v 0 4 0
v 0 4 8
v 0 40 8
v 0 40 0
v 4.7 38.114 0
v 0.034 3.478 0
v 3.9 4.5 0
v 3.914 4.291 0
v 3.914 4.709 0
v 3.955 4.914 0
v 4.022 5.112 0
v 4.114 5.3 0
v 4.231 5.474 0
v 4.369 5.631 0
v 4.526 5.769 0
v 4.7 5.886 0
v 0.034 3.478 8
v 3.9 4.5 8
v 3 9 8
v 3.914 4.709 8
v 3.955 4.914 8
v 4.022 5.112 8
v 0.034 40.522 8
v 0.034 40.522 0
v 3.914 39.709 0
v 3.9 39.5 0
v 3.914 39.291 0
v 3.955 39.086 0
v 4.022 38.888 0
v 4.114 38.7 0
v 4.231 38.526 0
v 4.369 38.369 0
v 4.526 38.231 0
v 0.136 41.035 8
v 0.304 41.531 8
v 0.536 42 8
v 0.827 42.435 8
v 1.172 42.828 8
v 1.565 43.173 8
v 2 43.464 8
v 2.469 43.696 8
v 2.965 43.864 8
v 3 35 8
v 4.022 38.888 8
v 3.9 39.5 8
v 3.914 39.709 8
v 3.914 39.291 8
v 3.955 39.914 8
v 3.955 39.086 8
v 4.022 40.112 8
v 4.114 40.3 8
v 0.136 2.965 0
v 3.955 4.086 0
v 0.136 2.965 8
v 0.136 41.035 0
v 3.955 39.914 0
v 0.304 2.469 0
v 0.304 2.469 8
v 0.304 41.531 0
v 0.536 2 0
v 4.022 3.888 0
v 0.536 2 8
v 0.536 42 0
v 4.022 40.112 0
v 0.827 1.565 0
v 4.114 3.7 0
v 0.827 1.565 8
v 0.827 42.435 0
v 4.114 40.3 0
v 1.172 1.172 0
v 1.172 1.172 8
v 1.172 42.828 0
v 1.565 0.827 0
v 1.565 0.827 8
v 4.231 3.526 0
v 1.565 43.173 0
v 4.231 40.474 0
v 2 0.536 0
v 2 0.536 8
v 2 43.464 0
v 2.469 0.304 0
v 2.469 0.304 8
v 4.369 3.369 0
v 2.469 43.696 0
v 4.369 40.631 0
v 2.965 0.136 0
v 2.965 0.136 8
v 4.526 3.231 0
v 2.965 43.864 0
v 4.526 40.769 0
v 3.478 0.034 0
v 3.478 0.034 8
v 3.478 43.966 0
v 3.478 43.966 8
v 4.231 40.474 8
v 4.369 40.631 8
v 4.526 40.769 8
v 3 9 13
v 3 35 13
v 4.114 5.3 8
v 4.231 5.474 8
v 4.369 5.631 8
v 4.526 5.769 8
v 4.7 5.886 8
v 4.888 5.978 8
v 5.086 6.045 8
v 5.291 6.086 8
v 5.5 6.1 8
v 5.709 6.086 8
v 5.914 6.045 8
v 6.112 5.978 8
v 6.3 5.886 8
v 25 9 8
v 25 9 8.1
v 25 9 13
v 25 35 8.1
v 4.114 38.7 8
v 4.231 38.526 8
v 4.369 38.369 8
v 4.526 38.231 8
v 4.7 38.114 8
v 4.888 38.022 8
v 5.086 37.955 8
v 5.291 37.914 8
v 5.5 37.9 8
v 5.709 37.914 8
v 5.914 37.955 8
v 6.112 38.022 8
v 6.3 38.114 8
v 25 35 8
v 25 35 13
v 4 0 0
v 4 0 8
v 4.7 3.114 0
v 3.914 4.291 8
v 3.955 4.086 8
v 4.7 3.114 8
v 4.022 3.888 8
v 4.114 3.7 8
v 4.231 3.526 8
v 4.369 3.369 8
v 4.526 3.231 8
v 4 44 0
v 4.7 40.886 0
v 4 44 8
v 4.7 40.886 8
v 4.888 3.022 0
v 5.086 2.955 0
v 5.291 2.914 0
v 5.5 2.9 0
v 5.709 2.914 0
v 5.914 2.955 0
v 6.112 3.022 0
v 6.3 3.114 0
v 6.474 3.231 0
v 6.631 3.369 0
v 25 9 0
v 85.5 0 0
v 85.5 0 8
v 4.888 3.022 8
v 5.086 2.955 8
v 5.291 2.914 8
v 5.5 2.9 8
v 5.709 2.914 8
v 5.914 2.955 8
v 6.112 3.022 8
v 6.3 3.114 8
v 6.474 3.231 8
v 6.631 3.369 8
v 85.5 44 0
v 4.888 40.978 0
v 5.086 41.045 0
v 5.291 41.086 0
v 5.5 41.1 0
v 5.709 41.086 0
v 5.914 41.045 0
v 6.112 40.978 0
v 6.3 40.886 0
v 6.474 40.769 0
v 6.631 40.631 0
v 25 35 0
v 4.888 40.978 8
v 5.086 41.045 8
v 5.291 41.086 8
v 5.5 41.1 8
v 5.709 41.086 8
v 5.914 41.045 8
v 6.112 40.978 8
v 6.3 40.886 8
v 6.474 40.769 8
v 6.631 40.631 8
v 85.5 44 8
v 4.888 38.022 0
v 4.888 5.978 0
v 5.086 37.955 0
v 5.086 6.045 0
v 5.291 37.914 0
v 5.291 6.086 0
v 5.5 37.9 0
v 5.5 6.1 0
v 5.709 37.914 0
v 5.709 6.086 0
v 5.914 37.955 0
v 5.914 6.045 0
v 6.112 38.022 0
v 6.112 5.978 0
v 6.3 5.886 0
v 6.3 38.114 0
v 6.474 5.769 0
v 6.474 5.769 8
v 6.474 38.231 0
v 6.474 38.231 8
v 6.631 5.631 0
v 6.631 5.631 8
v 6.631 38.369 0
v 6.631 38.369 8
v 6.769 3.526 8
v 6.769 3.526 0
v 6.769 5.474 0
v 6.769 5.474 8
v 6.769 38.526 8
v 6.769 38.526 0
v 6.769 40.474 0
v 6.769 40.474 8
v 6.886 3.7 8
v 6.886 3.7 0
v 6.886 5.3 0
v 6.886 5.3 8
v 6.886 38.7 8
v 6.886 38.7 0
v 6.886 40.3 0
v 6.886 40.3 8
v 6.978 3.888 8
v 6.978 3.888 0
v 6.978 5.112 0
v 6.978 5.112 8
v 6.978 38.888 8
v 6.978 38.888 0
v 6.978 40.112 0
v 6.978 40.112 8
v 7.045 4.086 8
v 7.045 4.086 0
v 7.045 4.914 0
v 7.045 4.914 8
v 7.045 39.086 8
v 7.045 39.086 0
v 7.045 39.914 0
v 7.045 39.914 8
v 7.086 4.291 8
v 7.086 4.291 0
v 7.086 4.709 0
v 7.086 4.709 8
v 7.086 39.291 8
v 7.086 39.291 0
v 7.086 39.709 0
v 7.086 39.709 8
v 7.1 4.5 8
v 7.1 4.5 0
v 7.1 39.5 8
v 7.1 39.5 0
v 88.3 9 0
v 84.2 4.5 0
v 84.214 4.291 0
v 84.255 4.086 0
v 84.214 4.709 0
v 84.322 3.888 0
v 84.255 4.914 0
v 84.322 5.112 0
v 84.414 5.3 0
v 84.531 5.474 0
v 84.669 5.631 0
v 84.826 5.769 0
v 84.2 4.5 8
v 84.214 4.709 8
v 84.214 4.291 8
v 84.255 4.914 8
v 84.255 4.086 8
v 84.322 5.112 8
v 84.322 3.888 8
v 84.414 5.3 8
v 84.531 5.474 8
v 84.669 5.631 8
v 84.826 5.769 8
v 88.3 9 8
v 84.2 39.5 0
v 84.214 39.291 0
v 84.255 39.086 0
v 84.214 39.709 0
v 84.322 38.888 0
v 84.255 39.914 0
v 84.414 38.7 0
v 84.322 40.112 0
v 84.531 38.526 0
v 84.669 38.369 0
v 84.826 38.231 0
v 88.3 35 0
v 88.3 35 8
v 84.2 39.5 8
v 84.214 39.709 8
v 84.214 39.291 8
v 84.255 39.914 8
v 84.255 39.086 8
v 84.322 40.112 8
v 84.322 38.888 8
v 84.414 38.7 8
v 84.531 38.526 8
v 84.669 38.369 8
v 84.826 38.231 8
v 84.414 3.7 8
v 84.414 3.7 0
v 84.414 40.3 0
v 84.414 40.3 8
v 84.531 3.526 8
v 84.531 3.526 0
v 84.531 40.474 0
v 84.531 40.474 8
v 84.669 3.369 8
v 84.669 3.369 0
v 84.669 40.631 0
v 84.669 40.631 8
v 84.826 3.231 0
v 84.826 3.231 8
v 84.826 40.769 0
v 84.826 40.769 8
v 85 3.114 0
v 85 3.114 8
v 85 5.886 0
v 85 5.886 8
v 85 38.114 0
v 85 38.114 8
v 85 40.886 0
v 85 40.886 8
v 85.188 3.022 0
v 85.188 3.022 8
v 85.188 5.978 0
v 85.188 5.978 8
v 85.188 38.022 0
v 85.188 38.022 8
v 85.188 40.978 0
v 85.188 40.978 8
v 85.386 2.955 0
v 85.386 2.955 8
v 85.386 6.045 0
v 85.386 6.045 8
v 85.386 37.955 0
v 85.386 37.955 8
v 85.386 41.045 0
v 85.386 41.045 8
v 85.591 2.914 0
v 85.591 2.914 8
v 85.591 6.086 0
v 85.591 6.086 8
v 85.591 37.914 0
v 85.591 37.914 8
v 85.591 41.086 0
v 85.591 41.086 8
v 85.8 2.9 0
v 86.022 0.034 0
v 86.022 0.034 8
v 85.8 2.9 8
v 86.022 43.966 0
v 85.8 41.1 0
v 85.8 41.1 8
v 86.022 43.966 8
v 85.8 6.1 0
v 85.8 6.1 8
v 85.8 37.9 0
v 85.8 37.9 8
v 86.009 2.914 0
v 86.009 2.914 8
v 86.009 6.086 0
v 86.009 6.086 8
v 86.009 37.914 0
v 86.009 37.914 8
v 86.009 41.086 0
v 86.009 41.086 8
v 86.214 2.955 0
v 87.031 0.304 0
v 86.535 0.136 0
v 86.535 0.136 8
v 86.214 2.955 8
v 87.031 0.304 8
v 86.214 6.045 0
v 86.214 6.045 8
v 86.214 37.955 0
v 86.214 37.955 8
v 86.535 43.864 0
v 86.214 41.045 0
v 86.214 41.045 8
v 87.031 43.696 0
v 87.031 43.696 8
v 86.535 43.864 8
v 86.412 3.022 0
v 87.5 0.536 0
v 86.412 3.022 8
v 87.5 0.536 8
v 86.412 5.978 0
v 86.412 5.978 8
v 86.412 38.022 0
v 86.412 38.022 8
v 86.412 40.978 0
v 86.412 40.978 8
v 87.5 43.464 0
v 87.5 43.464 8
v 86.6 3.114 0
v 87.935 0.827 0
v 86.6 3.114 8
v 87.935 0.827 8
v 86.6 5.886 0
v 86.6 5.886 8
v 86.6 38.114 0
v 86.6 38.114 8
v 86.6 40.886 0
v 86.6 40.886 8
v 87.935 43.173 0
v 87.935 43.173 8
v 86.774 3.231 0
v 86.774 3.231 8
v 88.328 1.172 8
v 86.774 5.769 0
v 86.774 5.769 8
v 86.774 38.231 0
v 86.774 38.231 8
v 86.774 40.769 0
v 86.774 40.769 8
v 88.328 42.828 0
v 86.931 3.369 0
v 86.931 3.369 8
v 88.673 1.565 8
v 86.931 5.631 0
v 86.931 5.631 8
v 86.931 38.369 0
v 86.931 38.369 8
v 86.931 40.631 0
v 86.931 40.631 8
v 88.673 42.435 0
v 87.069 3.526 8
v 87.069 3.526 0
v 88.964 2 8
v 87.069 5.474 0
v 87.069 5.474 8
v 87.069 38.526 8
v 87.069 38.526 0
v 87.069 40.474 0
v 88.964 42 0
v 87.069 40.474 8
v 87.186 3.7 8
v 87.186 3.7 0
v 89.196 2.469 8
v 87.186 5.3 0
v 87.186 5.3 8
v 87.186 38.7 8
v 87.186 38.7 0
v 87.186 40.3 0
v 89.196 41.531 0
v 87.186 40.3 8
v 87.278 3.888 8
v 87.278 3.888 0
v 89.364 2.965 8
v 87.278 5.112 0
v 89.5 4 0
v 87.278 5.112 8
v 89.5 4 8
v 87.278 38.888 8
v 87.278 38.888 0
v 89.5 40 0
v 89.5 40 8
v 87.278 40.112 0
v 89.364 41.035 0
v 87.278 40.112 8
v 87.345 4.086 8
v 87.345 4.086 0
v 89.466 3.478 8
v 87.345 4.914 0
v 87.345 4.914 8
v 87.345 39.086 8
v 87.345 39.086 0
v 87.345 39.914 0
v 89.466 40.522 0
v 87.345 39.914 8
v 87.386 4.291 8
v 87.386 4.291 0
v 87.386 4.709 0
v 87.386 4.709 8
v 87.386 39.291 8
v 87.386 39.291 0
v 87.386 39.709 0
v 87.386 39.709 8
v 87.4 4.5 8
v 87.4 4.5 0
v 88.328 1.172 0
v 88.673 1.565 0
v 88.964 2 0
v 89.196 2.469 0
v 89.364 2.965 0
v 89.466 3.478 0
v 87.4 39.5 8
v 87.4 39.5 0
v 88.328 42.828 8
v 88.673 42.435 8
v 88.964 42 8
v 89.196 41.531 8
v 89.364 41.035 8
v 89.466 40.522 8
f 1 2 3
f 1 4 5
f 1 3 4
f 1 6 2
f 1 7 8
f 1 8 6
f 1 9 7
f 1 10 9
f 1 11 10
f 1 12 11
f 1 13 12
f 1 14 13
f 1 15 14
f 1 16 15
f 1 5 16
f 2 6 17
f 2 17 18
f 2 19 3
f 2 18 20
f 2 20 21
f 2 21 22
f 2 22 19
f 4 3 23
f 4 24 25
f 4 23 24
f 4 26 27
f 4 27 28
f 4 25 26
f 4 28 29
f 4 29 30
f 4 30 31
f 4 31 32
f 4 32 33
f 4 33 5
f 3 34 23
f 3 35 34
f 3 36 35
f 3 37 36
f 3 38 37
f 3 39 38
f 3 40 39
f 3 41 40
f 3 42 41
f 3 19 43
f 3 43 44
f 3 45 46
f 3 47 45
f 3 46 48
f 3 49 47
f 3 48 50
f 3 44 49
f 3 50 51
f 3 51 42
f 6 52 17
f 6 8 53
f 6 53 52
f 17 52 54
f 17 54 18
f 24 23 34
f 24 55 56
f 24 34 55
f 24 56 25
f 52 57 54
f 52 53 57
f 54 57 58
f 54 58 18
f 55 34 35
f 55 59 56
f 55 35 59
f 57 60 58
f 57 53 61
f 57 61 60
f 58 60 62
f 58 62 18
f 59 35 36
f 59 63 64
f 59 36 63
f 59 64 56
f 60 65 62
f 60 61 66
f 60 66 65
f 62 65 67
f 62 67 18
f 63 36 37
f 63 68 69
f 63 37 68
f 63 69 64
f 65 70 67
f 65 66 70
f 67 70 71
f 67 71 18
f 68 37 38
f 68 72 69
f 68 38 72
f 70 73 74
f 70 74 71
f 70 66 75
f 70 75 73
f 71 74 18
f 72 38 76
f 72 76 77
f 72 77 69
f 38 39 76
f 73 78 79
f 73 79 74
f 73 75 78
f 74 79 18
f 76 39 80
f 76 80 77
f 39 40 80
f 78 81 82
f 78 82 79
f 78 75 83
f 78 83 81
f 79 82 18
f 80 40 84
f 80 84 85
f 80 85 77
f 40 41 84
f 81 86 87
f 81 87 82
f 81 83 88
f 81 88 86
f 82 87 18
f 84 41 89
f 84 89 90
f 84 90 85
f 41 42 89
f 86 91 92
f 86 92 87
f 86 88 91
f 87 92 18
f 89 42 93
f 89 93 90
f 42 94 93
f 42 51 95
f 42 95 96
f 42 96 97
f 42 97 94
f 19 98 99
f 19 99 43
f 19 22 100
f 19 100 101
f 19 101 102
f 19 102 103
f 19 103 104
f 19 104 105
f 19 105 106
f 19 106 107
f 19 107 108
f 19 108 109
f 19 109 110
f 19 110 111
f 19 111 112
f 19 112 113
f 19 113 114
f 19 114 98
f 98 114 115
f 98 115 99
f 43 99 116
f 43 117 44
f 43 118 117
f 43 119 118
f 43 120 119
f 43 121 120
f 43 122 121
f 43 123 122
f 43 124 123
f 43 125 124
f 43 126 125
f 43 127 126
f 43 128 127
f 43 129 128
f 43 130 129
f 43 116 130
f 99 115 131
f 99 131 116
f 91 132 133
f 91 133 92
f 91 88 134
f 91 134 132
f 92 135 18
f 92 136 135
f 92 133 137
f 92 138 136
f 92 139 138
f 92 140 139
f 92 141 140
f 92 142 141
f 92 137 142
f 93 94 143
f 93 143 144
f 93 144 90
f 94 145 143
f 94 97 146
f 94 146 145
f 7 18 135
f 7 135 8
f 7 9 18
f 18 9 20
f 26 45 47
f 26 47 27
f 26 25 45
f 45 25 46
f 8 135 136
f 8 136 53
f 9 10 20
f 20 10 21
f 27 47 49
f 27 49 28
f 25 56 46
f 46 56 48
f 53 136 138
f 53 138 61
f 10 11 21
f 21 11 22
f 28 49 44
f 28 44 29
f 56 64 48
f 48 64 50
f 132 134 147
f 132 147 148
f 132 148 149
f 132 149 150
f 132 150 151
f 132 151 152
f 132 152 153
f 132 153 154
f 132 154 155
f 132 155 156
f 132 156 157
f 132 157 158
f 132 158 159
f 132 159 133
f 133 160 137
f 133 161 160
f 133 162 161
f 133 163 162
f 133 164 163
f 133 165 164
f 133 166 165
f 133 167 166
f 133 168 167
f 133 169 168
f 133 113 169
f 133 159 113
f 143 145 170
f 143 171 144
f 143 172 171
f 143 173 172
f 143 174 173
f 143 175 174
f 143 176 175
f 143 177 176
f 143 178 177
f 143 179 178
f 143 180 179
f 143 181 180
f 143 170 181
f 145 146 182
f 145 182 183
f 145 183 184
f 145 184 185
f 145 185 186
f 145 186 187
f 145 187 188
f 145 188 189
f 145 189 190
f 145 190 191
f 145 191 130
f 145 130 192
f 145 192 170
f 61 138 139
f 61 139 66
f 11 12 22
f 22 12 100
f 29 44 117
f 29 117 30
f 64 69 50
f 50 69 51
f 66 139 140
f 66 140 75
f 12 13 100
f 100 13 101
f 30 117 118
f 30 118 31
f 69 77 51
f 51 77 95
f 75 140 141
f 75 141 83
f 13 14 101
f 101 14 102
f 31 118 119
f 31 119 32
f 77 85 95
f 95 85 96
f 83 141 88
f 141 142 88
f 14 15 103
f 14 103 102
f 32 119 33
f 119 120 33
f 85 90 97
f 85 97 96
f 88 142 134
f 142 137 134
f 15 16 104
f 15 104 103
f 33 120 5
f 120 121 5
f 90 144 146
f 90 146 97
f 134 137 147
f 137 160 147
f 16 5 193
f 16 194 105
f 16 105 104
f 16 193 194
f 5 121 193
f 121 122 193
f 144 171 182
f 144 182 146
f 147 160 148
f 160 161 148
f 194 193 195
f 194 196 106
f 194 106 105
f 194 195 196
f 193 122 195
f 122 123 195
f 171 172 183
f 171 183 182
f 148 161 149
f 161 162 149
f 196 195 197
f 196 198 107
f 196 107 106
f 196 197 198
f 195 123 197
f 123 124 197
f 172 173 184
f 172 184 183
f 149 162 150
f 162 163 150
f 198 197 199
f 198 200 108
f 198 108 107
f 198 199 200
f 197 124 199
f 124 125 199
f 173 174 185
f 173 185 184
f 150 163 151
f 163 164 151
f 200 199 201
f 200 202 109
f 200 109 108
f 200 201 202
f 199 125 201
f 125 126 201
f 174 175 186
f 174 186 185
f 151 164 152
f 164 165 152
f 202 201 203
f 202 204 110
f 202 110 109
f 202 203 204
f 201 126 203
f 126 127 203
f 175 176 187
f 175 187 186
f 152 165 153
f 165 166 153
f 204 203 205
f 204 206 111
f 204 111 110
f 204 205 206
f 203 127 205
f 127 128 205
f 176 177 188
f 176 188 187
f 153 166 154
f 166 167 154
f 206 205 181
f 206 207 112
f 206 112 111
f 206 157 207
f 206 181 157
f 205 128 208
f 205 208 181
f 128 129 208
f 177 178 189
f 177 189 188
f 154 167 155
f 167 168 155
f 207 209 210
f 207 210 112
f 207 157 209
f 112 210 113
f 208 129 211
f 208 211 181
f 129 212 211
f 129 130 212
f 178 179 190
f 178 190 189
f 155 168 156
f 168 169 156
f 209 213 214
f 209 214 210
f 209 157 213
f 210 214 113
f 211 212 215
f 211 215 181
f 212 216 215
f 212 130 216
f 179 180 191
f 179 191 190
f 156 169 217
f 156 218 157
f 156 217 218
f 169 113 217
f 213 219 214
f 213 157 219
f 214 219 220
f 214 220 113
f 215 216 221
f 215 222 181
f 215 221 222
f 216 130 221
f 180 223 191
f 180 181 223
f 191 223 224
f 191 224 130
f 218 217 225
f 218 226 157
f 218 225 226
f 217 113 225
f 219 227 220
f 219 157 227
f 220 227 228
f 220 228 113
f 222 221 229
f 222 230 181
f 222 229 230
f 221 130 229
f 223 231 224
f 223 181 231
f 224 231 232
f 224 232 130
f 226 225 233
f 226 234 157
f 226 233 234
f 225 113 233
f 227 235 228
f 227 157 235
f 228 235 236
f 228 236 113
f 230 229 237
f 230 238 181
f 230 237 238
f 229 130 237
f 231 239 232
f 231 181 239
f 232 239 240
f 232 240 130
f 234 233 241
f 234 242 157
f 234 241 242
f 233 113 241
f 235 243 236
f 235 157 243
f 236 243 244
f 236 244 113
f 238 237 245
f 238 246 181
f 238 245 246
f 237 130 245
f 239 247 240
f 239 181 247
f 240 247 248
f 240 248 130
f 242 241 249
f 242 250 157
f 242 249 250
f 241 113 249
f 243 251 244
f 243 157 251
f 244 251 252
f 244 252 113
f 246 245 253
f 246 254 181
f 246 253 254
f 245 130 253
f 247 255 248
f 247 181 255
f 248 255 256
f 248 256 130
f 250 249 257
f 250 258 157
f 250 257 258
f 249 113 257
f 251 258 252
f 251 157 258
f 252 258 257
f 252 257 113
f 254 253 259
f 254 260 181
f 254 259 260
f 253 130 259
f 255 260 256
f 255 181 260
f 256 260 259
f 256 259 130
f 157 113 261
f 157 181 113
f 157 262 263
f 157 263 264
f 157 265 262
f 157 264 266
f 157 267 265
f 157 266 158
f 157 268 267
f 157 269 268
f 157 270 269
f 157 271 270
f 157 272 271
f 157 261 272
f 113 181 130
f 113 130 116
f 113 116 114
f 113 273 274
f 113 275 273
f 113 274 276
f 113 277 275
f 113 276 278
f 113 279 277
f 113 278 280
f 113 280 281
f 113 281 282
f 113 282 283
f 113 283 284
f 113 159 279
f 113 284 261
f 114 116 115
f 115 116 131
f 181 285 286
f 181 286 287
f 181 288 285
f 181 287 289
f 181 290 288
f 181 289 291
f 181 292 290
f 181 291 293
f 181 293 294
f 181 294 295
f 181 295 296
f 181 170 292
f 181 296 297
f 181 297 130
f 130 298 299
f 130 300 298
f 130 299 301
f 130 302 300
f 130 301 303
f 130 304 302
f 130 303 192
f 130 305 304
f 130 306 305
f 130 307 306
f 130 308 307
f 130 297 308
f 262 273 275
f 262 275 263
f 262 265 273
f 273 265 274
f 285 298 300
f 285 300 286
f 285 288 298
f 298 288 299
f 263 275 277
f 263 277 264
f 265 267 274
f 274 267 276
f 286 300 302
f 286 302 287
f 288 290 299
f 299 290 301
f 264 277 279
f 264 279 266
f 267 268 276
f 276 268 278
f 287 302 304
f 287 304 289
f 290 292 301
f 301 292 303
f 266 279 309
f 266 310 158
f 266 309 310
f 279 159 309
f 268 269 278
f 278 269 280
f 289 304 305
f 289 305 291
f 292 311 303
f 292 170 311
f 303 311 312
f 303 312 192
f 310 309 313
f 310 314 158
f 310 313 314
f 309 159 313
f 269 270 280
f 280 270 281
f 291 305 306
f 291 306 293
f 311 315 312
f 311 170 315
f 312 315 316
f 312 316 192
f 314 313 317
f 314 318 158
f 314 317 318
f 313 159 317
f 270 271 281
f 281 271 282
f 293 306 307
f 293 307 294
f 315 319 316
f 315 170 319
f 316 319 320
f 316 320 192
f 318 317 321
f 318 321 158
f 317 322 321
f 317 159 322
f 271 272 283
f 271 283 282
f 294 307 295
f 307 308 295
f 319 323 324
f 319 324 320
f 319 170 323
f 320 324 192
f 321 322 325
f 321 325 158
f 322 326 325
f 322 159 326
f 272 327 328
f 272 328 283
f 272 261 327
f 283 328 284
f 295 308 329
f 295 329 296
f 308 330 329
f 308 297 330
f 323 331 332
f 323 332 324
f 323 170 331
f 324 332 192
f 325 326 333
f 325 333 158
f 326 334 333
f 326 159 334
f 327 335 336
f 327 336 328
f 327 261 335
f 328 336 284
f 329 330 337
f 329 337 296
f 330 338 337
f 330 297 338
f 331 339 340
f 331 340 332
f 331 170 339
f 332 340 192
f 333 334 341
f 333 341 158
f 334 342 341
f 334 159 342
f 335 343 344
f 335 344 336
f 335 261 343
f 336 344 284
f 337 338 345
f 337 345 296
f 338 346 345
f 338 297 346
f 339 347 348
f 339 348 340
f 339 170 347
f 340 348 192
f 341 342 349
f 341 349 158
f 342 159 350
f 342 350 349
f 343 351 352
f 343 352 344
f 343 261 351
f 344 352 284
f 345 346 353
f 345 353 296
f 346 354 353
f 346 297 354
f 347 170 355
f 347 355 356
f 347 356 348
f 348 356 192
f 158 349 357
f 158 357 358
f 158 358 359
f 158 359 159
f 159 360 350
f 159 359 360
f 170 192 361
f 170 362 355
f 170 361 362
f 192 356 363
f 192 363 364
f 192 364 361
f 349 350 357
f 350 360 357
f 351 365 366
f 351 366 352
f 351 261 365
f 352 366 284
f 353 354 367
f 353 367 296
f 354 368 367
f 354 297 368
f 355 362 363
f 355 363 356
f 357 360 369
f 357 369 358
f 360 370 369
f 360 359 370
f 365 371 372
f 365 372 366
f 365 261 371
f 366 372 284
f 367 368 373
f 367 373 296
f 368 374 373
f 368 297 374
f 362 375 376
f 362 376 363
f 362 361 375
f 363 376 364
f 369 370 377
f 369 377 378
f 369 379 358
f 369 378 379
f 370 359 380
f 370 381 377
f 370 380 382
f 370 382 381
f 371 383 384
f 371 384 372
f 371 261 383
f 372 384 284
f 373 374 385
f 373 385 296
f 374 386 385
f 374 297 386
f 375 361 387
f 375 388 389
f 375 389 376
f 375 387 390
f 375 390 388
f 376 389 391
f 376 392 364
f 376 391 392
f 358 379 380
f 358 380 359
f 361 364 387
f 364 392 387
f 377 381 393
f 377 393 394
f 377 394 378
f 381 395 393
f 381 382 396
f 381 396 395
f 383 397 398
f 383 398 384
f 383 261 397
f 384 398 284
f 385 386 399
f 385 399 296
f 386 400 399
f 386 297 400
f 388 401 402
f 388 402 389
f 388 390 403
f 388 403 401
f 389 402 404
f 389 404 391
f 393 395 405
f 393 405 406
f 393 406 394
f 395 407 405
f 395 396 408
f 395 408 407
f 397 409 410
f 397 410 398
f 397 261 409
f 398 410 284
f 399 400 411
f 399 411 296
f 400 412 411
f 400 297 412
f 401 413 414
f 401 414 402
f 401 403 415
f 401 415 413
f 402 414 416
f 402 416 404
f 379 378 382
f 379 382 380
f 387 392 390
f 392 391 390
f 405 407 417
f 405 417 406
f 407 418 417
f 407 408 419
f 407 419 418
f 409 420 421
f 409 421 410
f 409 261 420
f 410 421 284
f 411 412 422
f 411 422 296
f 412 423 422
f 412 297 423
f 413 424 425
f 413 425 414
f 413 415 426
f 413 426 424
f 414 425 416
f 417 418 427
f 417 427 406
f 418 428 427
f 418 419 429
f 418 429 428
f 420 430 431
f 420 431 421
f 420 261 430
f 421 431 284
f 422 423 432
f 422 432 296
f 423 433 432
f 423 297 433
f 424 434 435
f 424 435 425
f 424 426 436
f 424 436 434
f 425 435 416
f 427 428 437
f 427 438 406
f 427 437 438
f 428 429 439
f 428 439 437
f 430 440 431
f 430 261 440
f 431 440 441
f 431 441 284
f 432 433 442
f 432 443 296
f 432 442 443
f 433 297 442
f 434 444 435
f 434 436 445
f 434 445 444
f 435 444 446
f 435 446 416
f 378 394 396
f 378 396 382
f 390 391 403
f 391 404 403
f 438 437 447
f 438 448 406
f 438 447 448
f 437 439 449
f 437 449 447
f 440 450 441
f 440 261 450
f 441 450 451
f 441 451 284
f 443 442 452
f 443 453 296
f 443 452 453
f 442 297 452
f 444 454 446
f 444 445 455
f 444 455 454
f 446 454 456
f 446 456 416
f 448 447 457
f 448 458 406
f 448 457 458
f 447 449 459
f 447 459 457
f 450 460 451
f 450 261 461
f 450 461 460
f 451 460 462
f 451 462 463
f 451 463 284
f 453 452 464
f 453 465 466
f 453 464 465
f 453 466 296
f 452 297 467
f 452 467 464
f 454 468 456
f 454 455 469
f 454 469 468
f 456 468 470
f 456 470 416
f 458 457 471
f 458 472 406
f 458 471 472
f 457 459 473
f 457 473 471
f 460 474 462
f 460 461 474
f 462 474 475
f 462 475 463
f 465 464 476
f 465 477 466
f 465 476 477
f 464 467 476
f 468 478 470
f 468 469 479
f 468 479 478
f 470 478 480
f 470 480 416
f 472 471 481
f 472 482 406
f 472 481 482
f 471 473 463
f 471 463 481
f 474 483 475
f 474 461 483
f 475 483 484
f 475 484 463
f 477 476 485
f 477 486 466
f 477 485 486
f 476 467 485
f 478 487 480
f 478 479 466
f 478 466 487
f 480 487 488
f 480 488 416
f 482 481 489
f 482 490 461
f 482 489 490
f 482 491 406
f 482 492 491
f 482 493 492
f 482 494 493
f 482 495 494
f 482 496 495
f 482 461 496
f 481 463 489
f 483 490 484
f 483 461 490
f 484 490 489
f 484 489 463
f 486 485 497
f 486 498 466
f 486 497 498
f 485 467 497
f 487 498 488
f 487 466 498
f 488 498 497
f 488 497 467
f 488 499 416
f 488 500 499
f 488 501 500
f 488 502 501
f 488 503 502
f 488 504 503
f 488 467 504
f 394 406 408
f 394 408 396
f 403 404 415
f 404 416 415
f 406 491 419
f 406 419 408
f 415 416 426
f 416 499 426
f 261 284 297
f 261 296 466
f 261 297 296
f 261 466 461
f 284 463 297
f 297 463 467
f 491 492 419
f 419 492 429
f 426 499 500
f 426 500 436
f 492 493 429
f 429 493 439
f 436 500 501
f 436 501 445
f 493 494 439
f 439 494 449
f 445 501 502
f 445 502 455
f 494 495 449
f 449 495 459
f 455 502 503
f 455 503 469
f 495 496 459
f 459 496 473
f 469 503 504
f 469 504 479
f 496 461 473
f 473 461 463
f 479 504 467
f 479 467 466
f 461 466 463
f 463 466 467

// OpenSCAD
// Dilder Rev 2 "extended with joystick" — MIDDLE PLATFORM v1
//
// Mid-stack platform that sits on top of base-v1, under the top cover.
// Outer footprint is a uniform 8 mm-tall shell — no stepped outer
// profile. An internal solid pedestal on the -X end rises above the
// shell top.
//
// Walls:
//   - ±Y long side walls: 9 mm
//   - -X end wall: 3 mm (battery end, matches base-v1)
//   - +X end wall: 1.2 mm (USB-C end, matches base-v1's thin wall)
//
// Internal fill (only feature that goes above the 8 mm outer top):
//   - Solid block on the -X interior: 22 mm along X (from the -X inner
//     wall face inward), full interior Y (between the ±Y walls), from
//     the floor up to 5 mm above the shell top (so top sits at z = 13).
//
// Corner pillars stay at the same XY positions as base-v1 so the M3
// through-bolts align through the whole stack. All pillars are 8 mm
// tall (the fill block sits in a different Y band than the pillars, so
// they don't interact).
//
// Export:
//   openscad -o middle-platform-v1.3mf middle-platform-v1.scad

$fn = 48;

// ============================================================
// Outer shell dimensions (flush with base-v1)
// ============================================================
enclosure_outer_width_along_x_axis_mm           = 89.5;
enclosure_outer_depth_along_y_axis_mm           = 44;
middle_platform_short_portion_height_z_mm       = 8;
outer_case_top_view_corner_radius_mm            = 4;

// ============================================================
// Left-side internal fill (solid pedestal poking above the 8 mm top)
// ============================================================
// Interior fill depth along X, measured from the -X inner wall face.
left_fill_interior_depth_along_x_mm             = 22;
// How far the fill sticks up PAST the 8 mm shell top.
left_fill_height_above_shell_top_mm             = 5;

// ============================================================
// Wall thicknesses (only relevant around the hollow right portion)
// ============================================================
perimeter_long_side_wall_thickness_y_mm         = 9;    // ±Y long walls
minus_x_end_wall_thickness_mm                   = 3.0;  // battery end
plus_x_end_wall_thickness_mm                    = 1.2;  // USB-C end (thin)

// Interior X at which the fill block ends (its -X face sits at the -X
// inner wall). Also marks where the hollow right-side interior begins.
left_fill_end_x_mm =
    minus_x_end_wall_thickness_mm + left_fill_interior_depth_along_x_mm;  // = 25

// Absolute Z of the fill top (5 mm above the 8 mm shell top).
left_fill_top_z_mm =
    middle_platform_short_portion_height_z_mm
      + left_fill_height_above_shell_top_mm;  // = 13

// ============================================================
// Corner pillars (same XY origins as base-v1 so screws line up)
// ============================================================
corner_pillar_square_side_length_mm             = 5;
corner_pillar_inner_facing_corner_radius_mm     = 1;
m3_screw_clearance_hole_diameter_mm             = 3.2;

// Pillar Y origin uses base-v1's 2 mm long-wall thickness (NOT this
// file's 9 mm), so the screw centers don't shift sideways vs. the base.
perimeter_outer_wall_thickness_mm_base          = 2;

corner_pillar_xy_origin_positions_list = [
    [minus_x_end_wall_thickness_mm,
     perimeter_outer_wall_thickness_mm_base],
    [enclosure_outer_width_along_x_axis_mm
       - plus_x_end_wall_thickness_mm
       - corner_pillar_square_side_length_mm,
     perimeter_outer_wall_thickness_mm_base],
    [minus_x_end_wall_thickness_mm,
     enclosure_outer_depth_along_y_axis_mm
       - perimeter_outer_wall_thickness_mm_base
       - corner_pillar_square_side_length_mm],
    [enclosure_outer_width_along_x_axis_mm
       - plus_x_end_wall_thickness_mm
       - corner_pillar_square_side_length_mm,
     enclosure_outer_depth_along_y_axis_mm
       - perimeter_outer_wall_thickness_mm_base
       - corner_pillar_square_side_length_mm],
];

// ========== Helpers (shared shape language with base-v1) ==========

module rounded_v_box(w, l, h, r, fn = 48) {
    hull() {
        for (x = [r, w - r])
            for (y = [r, l - r])
                translate([x, y, 0])
                    cylinder(r = r, h = h, $fn = fn);
    }
}

module pillar_one_round(w, l, h, r, round_x, round_y) {
    tiny = 0.01;
    hull() {
        for (ix = [0, 1])
            for (iy = [0, 1]) {
                cr = (ix == round_x && iy == round_y) ? r : tiny;
                translate([cr + ix * (w - 2*cr), cr + iy * (l - 2*cr), 0])
                    cylinder(r = cr, h = h, $fn = 48);
            }
    }
}

module chamber_carve_preserving_pillars(origin_x, origin_y, origin_z,
                                        width_x, depth_y, height_z,
                                        pillar_xy_list, pillar_side) {
    difference() {
        translate([origin_x, origin_y, origin_z])
            cube([width_x, depth_y, height_z]);
        for (pillar_origin_xy = pillar_xy_list)
            translate([pillar_origin_xy[0], pillar_origin_xy[1], origin_z - 0.5])
                cube([pillar_side, pillar_side, height_z + 1]);
    }
}

// ========== Middle platform ==========

module middle_platform() {
    right_interior_x_start_mm = left_fill_end_x_mm;
    right_interior_x_end_mm =
        enclosure_outer_width_along_x_axis_mm - plus_x_end_wall_thickness_mm;
    interior_y_start_mm = perimeter_long_side_wall_thickness_y_mm;
    interior_y_depth_mm =
        enclosure_outer_depth_along_y_axis_mm
          - 2 * perimeter_long_side_wall_thickness_y_mm;

    difference() {
        union() {
            // Outer shell — uniform 8 mm tall, flat top. The internal
            // fill block below is the only feature that pokes above this.
            rounded_v_box(
                enclosure_outer_width_along_x_axis_mm,
                enclosure_outer_depth_along_y_axis_mm,
                middle_platform_short_portion_height_z_mm,
                outer_case_top_view_corner_radius_mm);

            // Internal fill pedestal on the -X interior. -X face flush
            // with the -X inner wall; ±Y faces flush with the ±Y inner
            // wall faces; top sits 5 mm above the 8 mm shell top.
            translate([minus_x_end_wall_thickness_mm,
                       interior_y_start_mm,
                       0])
                cube([left_fill_interior_depth_along_x_mm,
                      interior_y_depth_mm,
                      left_fill_top_z_mm]);

            // Corner pillars — all uniform 8 mm (the fill block is in a
            // different Y band than any pillar, so pillars stay short).
            for (corner_pillar_origin_xy = corner_pillar_xy_origin_positions_list) {
                pillar_rounds_positive_x_corner =
                    (corner_pillar_origin_xy[0]
                      < enclosure_outer_width_along_x_axis_mm / 2) ? 1 : 0;
                pillar_rounds_positive_y_corner =
                    (corner_pillar_origin_xy[1]
                      < enclosure_outer_depth_along_y_axis_mm / 2) ? 1 : 0;
                translate([corner_pillar_origin_xy[0],
                           corner_pillar_origin_xy[1],
                           0])
                    pillar_one_round(
                        corner_pillar_square_side_length_mm,
                        corner_pillar_square_side_length_mm,
                        middle_platform_short_portion_height_z_mm,
                        corner_pillar_inner_facing_corner_radius_mm,
                        pillar_rounds_positive_x_corner,
                        pillar_rounds_positive_y_corner);
            }
        }

        // Interior carve — only on the right (hollow) portion. The fill
        // block's X range (x < 25) is left untouched.
        chamber_carve_preserving_pillars(
            right_interior_x_start_mm,
            interior_y_start_mm,
            -0.1,
            right_interior_x_end_mm - right_interior_x_start_mm,
            interior_y_depth_mm,
            middle_platform_short_portion_height_z_mm + 0.2,
            corner_pillar_xy_origin_positions_list,
            corner_pillar_square_side_length_mm);

        // Screw pass-through holes through every pillar (uniform 8 mm).
        for (corner_pillar_origin_xy = corner_pillar_xy_origin_positions_list) {
            screw_hole_center_x_mm =
                corner_pillar_origin_xy[0]
                  + corner_pillar_square_side_length_mm / 2;
            screw_hole_center_y_mm =
                corner_pillar_origin_xy[1]
                  + corner_pillar_square_side_length_mm / 2;
            translate([screw_hole_center_x_mm,
                       screw_hole_center_y_mm,
                       -0.1])
                cylinder(
                    h = middle_platform_short_portion_height_z_mm + 0.2,
                    d = m3_screw_clearance_hole_diameter_mm);
        }
    }
}

middle_platform();
